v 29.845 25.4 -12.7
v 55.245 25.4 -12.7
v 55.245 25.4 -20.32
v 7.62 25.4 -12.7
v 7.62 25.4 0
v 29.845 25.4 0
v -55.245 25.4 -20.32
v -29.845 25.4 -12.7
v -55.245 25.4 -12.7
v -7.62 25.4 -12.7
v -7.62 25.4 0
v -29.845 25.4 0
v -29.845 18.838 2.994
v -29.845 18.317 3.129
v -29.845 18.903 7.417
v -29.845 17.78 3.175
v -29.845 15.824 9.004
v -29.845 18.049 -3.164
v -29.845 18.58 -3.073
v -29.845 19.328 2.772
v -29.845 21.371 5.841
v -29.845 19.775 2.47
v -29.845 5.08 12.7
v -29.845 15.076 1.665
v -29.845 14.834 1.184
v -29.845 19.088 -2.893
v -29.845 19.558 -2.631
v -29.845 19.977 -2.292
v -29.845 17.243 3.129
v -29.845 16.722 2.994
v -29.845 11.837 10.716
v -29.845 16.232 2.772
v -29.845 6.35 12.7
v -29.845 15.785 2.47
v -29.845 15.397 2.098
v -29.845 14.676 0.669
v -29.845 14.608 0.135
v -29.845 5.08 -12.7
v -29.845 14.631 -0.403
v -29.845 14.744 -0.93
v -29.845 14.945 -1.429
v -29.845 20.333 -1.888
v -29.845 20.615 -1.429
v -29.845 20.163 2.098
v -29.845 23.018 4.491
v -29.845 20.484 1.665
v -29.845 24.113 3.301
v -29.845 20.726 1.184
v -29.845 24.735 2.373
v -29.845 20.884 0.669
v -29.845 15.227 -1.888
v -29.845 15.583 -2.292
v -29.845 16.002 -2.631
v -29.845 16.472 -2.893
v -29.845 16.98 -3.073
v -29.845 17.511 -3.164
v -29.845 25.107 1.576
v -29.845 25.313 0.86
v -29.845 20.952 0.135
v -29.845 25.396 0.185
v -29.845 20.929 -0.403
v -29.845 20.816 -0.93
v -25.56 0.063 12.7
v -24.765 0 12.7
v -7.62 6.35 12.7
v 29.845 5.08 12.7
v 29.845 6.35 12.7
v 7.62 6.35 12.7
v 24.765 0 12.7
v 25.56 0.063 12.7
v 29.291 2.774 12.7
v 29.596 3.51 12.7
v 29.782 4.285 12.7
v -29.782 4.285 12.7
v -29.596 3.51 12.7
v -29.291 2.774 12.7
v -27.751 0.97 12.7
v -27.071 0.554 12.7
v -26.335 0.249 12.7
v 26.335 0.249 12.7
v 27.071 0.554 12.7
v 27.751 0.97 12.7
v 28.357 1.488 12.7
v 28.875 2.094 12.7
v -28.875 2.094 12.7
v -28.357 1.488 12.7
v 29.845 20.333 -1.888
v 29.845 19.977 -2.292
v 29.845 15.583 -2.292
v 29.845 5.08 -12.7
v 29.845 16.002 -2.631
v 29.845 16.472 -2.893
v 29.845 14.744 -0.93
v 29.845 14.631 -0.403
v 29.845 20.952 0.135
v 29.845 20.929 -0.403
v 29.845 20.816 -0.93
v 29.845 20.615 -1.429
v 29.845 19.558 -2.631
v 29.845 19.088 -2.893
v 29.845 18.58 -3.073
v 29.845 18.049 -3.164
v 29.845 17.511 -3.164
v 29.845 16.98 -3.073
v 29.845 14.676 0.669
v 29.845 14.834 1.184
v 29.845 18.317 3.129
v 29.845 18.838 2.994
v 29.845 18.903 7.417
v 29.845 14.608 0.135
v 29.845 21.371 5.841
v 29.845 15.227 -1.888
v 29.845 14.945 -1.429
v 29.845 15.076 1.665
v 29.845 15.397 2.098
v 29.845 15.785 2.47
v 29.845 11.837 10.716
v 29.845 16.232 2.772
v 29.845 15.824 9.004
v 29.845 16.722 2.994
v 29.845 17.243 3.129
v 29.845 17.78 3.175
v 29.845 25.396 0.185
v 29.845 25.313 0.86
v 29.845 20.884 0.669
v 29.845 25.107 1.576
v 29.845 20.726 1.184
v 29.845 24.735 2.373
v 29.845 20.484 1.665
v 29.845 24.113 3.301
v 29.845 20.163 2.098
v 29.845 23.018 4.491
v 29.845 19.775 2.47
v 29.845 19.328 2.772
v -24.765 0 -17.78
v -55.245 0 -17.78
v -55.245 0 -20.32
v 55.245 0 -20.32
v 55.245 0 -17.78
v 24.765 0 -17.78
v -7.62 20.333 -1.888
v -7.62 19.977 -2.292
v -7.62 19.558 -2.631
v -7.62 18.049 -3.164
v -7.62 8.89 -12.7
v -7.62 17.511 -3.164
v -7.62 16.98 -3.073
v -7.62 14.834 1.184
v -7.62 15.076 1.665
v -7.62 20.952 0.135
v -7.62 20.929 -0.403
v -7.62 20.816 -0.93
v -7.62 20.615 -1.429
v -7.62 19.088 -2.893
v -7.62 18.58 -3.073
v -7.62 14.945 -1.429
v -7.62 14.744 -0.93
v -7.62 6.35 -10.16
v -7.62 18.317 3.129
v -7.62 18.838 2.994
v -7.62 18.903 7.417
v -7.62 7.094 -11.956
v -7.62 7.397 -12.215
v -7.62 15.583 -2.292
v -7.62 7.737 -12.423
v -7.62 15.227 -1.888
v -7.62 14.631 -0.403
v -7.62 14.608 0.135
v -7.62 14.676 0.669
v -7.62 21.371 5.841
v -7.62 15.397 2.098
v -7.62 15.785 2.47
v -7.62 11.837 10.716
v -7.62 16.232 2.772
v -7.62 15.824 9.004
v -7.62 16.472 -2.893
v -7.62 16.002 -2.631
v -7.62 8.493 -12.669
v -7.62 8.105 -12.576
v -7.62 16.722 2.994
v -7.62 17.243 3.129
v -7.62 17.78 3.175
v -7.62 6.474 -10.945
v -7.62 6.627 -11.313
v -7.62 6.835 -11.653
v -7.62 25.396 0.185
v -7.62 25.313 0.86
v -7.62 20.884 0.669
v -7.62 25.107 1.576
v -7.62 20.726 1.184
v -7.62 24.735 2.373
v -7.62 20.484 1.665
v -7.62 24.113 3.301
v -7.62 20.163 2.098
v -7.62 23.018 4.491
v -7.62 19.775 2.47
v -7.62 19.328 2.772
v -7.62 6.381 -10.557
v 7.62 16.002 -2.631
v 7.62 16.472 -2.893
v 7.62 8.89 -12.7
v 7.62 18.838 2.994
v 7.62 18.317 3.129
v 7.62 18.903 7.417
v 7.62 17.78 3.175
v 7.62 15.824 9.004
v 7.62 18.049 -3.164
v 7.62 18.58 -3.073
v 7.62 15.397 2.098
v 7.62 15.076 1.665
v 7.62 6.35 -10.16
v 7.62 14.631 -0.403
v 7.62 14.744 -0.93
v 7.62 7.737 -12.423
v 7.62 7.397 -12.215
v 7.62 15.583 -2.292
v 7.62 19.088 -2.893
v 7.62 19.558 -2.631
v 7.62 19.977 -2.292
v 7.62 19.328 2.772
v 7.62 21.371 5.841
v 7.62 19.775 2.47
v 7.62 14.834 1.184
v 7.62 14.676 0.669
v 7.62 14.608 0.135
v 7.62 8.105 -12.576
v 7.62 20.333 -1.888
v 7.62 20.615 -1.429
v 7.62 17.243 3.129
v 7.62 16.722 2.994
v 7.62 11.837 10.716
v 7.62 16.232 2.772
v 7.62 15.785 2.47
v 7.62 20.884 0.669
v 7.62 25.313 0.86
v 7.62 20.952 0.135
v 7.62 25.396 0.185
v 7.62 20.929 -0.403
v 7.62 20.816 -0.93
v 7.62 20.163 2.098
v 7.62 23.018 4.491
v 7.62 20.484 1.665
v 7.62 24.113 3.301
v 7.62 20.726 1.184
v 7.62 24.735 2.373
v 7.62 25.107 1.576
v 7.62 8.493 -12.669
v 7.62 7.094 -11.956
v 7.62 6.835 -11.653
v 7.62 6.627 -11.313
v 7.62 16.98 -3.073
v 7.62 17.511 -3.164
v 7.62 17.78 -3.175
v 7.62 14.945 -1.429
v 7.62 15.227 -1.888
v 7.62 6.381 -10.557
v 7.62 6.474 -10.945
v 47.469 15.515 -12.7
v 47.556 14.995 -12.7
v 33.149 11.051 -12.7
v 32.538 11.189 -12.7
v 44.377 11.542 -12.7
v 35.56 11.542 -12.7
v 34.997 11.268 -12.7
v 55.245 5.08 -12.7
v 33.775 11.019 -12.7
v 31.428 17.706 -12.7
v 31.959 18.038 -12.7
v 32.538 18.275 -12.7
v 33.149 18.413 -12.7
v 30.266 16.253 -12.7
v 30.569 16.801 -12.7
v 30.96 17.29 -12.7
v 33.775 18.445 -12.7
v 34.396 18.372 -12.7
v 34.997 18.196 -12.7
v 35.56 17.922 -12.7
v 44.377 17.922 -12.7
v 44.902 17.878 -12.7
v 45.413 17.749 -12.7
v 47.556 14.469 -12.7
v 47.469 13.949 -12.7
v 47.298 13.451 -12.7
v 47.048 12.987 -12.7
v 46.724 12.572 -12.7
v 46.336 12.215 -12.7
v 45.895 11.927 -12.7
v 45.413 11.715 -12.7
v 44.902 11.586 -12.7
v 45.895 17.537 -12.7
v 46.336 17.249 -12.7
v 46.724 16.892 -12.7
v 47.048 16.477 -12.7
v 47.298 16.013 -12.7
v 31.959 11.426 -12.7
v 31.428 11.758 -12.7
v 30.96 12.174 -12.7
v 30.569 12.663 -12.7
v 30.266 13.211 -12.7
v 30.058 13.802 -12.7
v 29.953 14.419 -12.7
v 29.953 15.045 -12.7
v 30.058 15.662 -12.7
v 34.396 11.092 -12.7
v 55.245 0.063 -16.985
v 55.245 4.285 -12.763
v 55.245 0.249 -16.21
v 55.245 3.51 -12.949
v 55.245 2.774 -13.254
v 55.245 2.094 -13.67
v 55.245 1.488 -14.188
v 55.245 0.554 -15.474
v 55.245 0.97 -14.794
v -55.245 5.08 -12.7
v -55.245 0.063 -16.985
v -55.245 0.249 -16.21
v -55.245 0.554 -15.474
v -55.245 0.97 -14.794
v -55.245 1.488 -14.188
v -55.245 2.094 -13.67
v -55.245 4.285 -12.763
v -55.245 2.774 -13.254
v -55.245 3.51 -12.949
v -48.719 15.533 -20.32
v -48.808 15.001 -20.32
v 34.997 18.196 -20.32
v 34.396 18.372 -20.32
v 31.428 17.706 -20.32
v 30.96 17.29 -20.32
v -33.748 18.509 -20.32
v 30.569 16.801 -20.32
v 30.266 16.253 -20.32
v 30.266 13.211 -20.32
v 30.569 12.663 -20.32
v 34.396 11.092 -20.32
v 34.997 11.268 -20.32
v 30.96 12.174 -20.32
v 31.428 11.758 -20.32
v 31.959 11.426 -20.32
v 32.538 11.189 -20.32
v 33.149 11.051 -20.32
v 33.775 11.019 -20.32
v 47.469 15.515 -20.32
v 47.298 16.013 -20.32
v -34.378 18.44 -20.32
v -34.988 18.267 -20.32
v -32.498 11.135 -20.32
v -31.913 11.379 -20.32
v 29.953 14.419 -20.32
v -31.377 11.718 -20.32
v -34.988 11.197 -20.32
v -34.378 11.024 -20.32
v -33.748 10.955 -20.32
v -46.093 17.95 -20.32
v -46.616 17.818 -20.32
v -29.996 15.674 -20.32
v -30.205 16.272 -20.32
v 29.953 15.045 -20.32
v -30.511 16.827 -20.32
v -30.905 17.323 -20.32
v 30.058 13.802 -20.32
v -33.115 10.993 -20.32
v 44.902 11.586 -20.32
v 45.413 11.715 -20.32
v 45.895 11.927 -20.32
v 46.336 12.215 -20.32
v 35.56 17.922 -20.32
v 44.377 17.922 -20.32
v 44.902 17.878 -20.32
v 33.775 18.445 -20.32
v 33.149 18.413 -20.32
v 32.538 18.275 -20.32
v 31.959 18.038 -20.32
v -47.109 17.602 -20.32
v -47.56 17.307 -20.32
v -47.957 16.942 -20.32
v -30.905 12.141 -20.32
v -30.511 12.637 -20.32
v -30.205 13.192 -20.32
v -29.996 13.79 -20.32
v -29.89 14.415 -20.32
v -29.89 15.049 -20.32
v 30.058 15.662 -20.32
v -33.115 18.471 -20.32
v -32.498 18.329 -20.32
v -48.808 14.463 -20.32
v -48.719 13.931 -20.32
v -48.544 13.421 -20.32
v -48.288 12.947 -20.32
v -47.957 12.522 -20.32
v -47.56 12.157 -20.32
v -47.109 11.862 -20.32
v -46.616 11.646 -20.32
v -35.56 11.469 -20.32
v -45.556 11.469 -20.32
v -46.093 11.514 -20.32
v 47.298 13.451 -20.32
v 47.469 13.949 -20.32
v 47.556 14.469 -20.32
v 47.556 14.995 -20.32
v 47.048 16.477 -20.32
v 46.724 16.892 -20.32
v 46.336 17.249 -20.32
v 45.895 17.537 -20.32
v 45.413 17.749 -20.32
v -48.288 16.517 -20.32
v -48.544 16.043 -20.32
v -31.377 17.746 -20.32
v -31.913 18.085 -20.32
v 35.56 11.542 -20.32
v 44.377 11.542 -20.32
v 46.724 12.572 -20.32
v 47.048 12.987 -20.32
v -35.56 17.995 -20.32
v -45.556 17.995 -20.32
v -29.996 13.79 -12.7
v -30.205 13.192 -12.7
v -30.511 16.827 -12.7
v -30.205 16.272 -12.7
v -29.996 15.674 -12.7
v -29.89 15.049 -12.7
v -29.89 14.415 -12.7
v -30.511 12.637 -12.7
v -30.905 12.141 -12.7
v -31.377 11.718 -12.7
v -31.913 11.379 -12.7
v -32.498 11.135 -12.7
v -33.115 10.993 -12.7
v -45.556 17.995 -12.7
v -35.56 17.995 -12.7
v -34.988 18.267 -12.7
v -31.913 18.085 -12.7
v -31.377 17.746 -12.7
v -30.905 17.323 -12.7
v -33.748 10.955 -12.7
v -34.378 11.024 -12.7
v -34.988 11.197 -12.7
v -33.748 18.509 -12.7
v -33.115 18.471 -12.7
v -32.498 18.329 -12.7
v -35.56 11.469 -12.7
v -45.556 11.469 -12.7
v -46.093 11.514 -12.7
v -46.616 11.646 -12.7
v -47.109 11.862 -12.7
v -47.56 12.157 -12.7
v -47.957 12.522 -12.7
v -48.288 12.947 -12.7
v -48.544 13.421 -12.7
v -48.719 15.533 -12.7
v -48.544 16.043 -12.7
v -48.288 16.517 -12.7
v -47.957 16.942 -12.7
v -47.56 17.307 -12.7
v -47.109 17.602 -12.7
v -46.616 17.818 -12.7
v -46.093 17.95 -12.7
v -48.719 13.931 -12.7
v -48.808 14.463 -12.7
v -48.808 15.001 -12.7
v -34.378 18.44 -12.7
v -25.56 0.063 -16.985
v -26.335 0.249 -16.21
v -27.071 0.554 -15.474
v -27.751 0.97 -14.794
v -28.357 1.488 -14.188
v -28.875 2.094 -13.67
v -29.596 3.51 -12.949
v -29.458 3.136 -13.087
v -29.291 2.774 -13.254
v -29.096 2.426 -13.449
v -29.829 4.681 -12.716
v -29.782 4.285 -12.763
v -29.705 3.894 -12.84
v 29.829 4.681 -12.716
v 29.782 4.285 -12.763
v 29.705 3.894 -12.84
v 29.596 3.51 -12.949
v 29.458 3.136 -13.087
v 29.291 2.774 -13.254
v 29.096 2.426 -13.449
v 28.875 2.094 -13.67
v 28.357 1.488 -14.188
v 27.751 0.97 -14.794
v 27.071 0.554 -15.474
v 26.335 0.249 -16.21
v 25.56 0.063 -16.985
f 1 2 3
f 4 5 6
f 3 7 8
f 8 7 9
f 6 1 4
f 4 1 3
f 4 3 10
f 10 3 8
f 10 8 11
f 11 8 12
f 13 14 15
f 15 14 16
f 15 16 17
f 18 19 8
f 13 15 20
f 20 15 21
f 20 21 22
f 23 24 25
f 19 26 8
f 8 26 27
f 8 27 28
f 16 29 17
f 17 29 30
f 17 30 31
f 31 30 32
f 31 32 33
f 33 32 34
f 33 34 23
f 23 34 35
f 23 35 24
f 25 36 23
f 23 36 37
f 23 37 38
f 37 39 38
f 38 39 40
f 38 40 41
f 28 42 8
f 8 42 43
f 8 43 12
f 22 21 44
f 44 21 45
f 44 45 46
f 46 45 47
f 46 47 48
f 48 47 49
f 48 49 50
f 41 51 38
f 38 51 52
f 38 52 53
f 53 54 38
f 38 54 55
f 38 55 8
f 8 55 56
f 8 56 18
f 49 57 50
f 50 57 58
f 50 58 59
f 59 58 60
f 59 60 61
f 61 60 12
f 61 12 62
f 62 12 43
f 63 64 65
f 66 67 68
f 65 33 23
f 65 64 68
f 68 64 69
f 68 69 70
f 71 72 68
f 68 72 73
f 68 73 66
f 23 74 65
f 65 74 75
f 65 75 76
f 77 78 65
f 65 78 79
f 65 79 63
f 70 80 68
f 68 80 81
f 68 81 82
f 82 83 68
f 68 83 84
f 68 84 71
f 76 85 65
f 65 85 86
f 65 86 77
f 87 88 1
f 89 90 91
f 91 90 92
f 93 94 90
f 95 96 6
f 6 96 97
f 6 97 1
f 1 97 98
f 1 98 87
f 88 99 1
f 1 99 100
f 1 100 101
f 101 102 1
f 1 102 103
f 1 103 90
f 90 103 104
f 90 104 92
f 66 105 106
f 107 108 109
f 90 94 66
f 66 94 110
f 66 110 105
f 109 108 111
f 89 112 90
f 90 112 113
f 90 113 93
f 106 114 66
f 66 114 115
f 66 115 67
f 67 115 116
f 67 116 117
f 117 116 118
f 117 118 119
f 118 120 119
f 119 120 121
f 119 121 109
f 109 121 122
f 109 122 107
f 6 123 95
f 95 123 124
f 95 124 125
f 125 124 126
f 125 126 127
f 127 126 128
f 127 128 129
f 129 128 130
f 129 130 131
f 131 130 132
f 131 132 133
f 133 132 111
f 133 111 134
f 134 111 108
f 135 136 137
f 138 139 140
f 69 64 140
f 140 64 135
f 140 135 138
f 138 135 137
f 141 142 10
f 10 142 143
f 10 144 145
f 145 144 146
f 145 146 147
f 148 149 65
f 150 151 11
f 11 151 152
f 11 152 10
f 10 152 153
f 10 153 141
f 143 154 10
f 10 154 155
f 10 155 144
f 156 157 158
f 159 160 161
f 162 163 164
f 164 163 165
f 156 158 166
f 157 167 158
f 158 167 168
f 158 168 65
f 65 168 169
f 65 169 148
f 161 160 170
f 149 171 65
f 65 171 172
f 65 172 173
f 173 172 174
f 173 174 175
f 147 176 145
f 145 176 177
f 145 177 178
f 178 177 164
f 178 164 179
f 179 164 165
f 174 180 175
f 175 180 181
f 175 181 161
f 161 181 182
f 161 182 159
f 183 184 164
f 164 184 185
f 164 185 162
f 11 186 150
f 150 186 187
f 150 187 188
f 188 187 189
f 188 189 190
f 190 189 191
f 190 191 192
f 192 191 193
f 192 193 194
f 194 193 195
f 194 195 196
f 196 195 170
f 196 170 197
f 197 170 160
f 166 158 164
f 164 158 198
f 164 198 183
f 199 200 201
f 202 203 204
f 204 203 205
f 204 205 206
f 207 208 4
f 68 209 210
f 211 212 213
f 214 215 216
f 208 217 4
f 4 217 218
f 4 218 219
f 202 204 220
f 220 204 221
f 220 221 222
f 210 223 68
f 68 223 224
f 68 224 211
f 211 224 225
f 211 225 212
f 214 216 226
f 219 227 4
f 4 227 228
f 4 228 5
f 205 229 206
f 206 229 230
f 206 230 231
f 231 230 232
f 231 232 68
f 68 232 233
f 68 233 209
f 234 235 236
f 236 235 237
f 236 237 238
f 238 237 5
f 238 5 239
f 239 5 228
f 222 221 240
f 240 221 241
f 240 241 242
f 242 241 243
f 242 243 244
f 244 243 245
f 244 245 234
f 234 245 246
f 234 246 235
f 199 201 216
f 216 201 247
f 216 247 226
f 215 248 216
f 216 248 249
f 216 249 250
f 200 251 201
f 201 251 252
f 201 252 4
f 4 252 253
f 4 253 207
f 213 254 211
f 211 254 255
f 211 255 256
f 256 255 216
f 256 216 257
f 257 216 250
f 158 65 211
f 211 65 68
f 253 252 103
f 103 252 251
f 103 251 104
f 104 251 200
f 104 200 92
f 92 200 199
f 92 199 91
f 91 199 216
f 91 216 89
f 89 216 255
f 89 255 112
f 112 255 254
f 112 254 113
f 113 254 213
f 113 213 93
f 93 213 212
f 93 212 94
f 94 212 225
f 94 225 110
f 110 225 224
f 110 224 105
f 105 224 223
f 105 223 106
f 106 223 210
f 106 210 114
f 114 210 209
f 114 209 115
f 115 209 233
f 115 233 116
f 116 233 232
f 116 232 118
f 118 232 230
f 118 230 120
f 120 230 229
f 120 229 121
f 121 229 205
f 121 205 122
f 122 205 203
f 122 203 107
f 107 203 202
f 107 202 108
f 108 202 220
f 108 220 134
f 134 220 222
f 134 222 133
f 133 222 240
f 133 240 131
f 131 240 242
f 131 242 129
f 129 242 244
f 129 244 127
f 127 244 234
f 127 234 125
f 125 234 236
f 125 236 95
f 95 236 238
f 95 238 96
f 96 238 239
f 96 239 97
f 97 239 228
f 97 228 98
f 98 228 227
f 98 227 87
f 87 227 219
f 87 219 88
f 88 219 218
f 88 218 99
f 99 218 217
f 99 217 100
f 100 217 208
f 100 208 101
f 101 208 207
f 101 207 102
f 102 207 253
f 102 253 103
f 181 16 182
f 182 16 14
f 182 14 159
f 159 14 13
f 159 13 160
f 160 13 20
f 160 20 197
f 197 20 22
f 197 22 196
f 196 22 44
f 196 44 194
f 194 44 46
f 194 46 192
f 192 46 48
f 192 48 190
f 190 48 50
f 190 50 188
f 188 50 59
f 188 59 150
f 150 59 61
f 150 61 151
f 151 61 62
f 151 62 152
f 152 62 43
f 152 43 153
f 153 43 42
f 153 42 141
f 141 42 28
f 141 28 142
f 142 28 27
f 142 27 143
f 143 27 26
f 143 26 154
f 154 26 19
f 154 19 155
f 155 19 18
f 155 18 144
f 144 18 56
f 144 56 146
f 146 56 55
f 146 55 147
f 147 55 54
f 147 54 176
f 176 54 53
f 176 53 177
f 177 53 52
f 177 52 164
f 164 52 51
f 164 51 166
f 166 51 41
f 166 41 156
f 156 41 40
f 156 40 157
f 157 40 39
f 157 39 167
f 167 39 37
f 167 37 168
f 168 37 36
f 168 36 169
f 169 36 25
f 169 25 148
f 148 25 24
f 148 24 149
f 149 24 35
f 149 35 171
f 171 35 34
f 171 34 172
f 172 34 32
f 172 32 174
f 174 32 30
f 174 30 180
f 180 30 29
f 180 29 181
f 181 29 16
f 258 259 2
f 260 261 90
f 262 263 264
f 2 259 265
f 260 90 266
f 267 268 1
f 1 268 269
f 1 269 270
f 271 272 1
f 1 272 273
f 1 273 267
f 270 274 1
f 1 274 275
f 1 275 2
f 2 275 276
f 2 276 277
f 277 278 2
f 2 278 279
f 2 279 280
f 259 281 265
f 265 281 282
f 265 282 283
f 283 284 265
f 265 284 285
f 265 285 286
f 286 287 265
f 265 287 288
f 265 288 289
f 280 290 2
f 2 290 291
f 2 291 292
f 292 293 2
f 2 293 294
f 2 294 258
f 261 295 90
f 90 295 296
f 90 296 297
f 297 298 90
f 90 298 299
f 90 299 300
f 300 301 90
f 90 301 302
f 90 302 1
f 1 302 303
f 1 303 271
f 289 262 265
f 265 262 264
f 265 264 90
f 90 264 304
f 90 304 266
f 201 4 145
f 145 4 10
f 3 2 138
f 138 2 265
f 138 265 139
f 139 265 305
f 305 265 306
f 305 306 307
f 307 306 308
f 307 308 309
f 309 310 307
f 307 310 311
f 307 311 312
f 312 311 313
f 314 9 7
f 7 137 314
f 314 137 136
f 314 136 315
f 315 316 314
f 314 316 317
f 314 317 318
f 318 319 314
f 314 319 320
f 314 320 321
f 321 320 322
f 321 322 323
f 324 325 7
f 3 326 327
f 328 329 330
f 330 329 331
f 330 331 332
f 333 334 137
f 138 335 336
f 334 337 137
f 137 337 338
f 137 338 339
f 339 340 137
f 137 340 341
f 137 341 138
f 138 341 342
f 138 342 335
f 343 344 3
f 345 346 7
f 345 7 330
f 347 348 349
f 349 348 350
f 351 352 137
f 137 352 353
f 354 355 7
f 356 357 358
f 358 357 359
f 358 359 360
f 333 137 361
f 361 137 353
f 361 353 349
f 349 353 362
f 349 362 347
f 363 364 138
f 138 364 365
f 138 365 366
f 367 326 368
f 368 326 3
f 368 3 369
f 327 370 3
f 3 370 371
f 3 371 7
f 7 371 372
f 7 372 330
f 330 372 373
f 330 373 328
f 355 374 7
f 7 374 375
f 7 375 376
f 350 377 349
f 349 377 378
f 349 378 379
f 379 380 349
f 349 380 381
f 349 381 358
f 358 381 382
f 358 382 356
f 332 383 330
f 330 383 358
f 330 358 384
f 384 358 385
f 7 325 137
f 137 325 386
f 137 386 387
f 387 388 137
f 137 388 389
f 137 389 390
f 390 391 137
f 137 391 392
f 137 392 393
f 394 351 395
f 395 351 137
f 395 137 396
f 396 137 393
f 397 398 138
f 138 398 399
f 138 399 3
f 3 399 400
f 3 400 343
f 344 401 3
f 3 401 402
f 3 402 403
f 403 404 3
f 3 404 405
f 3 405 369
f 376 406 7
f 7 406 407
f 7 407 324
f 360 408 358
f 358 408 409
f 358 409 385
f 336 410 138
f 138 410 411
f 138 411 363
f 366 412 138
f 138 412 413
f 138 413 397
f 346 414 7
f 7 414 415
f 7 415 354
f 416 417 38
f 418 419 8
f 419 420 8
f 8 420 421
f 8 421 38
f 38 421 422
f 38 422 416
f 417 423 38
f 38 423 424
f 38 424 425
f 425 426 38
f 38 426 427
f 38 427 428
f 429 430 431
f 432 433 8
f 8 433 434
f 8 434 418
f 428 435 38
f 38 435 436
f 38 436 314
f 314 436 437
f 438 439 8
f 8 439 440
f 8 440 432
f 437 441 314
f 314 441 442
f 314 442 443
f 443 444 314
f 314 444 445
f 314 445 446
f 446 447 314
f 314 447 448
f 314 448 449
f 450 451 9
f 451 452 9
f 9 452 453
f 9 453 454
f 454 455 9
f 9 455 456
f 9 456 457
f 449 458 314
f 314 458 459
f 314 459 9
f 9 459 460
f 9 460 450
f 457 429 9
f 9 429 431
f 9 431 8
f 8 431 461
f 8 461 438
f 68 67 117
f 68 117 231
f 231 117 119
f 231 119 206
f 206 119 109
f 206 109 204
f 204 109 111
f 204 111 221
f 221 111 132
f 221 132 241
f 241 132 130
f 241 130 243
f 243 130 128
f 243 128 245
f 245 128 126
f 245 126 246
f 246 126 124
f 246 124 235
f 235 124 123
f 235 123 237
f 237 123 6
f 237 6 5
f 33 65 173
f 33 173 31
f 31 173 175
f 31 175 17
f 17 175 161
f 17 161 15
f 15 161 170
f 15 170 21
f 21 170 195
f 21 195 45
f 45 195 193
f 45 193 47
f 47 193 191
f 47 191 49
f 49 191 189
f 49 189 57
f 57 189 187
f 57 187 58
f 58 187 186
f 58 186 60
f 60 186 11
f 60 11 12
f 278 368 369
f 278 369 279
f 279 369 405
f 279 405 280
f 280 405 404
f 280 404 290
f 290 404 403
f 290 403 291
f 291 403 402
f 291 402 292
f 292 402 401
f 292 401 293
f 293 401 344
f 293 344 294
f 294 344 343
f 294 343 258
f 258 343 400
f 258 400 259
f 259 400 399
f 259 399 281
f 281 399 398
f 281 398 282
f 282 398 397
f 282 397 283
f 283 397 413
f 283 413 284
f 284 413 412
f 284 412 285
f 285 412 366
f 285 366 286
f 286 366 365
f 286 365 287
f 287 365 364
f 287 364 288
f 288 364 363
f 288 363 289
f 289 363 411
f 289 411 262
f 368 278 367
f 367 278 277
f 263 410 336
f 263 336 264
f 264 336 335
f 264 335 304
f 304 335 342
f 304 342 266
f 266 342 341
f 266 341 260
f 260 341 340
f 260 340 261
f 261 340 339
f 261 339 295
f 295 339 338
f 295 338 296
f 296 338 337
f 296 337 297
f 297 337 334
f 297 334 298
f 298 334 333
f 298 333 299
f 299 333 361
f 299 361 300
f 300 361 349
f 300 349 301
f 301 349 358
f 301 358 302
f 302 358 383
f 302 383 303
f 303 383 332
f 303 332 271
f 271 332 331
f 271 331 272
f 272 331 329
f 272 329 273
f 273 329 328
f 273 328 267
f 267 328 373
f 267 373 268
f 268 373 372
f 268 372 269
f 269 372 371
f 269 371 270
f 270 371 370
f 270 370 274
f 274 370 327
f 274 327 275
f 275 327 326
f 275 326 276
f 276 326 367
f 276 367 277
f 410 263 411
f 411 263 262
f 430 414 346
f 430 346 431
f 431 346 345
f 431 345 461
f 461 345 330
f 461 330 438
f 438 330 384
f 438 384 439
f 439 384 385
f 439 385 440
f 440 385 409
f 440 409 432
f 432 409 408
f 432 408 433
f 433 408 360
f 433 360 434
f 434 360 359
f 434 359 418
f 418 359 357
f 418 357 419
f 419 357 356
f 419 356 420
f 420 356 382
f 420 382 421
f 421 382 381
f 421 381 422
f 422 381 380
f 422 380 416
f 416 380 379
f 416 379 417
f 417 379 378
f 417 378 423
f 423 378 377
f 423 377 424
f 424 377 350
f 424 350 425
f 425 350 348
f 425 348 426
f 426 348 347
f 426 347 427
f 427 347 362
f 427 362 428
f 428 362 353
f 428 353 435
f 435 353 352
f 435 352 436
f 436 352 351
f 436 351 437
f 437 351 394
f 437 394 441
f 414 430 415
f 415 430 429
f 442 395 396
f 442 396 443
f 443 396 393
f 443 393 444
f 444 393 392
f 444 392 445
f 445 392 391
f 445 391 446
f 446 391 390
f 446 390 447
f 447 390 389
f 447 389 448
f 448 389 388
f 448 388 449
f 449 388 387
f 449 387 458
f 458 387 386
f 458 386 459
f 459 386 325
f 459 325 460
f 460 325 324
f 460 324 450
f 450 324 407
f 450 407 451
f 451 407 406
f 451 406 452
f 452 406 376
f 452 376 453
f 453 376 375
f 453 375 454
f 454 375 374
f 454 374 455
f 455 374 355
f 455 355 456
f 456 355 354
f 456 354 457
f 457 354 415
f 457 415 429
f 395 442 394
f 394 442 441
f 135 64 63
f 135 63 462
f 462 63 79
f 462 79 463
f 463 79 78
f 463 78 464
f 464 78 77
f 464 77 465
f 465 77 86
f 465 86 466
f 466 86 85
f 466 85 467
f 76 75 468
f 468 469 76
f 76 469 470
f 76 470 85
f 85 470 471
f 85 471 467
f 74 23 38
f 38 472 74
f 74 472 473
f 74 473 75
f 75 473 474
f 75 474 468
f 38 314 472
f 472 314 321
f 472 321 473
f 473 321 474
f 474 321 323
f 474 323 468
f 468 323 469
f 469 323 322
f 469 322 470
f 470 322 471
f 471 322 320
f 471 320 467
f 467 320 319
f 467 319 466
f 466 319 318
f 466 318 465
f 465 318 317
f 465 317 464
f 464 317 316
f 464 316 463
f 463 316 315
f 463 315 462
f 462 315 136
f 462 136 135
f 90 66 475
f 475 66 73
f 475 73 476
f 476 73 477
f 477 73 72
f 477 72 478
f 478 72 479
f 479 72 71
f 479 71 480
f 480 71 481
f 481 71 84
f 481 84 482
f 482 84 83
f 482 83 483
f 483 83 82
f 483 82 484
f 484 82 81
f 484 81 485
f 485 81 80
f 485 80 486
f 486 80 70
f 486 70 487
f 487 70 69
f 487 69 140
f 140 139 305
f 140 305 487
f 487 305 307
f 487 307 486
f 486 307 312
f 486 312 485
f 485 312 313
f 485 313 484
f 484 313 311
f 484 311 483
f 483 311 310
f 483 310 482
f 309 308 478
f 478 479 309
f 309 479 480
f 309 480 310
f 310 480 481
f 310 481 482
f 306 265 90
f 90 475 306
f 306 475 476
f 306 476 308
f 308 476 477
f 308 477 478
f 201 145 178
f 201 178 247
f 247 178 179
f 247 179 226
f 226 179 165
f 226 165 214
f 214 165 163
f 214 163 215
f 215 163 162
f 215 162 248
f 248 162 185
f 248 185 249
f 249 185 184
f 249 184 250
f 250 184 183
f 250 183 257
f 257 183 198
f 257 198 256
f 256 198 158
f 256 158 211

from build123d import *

# Parameters (mm, degrees)
SKETCH1_W           = 59.69
SKETCH1_H           = 25.4
BOSS_EXTRUDE1_DEPTH = 25.4
SKETCH2_W           = 15.24
SKETCH2_H           = 25.4
CUT_EXTRUDE1_DEPTH  = 19.05
SKETCH3_R           = 3.175
CUT_EXTRUDE2_DEPTH  = 67.101029493
SKETCH5_W           = 110.49
SKETCH5_H           = 25.4
BOSS_EXTRUDE2_DEPTH = 7.62
CUT_EXTRUDE4_DEPTH  = 92.095392309
CUT_EXTRUDE5_DEPTH  = 70.191693408
FILLET2_R           = 5.08
FILLET3_R           = 2.54


with BuildPart() as part:
    # Sketch1 → Boss-Extrude1 (new body)
    with BuildSketch(Plane(origin=(0, 0, 0), x_dir=(1, 0, 0), z_dir=(0, 1, 0))):
        Rectangle(SKETCH1_W, SKETCH1_H)
    extrude(amount=BOSS_EXTRUDE1_DEPTH)

    # Sketch2 → Cut-Extrude1 (cut)
    with BuildSketch(Plane(origin=(0, 25.4, 0), x_dir=(1, 0, 0), z_dir=(0, 1, 0))):
        Rectangle(SKETCH2_W, SKETCH2_H)
    extrude(amount=-CUT_EXTRUDE1_DEPTH, mode=Mode.SUBTRACT)

    # Sketch3 → Cut-Extrude2 (cut, through all)
    with BuildSketch(Plane.ZY.offset(29.845)):
        with Locations((0, 17.78)):
            Circle(SKETCH3_R)
    extrude(amount=-CUT_EXTRUDE2_DEPTH, mode=Mode.SUBTRACT)

    # Sketch5 → Boss-Extrude2 (add)
    with BuildSketch(Plane(origin=(0, 0, -12.7), x_dir=(-1, 0, 0), z_dir=(0, 0, -1))):
        with Locations((0, 12.7)):
            Rectangle(SKETCH5_W, SKETCH5_H)
    extrude(amount=BOSS_EXTRUDE2_DEPTH)

    # Sketch4 → Cut-Extrude4 (cut, through all)
    with BuildSketch(Plane(origin=(29.845, 0, 0), x_dir=(0, 0, -1), z_dir=(1, 0, 0))):
        with BuildLine():
            Line((-12.7, 6.35), (-12.7, 25.4))
            Line((-12.7, 25.4), (0, 25.4))
            add(Edge.make_bspline(
                [(-12.7, 6.35), (-6.35, 25.4), (0, 25.4)],
                knots=[0, 0, 0, 0.5, 0.5, 0.5], degree=2))
        make_face()
    extrude(amount=-CUT_EXTRUDE4_DEPTH, mode=Mode.SUBTRACT)

    # Sketch6 → Cut-Extrude5 (cut, through all)
    with BuildSketch(Plane(origin=(0, 0, -20.32), x_dir=(-1, 0, 0), z_dir=(0, 0, -1))):
        with BuildLine():
            Line((-44.37743079, 17.921542216), (-35.56, 17.921542216))
            ThreePointArc((-35.56, 17.921542216), (-29.939868166, 14.732), (-35.56, 11.542457784))
            Line((-35.56, 11.542457784), (-44.37743079, 11.542457784))
            ThreePointArc((-44.37743079, 11.542457784), (-47.566973006, 14.732), (-44.37743079, 17.921542216))
        make_face()
        with BuildLine():
            Line((35.56, 17.994815174), (45.556129925, 17.994815174))
            ThreePointArc((45.556129925, 17.994815174), (48.818945099, 14.732), (45.556129925, 11.469184826))
            Line((45.556129925, 11.469184826), (35.56, 11.469184826))
            ThreePointArc((35.56, 11.469184826), (29.876774509, 14.732), (35.56, 17.994815174))
        make_face()
    extrude(amount=-CUT_EXTRUDE5_DEPTH, mode=Mode.SUBTRACT)

    # Fillet2
    fillet2_edges = [part.edges().sort_by_distance(p)[0] for p in [
        (42.545, 0, -12.7),
        (-42.545, 0, -12.7),
        (29.845, 0, 0),
        (-29.845, 0, 0),
    ]]
    fillet(fillet2_edges, radius=FILLET2_R)

    # Fillet3
    fillet3_edges = [part.edges().sort_by_distance(p)[0] for p in [
        (0, 6.35, -12.7),
    ]]
    fillet(fillet3_edges, radius=FILLET3_R)


solid = part.part
